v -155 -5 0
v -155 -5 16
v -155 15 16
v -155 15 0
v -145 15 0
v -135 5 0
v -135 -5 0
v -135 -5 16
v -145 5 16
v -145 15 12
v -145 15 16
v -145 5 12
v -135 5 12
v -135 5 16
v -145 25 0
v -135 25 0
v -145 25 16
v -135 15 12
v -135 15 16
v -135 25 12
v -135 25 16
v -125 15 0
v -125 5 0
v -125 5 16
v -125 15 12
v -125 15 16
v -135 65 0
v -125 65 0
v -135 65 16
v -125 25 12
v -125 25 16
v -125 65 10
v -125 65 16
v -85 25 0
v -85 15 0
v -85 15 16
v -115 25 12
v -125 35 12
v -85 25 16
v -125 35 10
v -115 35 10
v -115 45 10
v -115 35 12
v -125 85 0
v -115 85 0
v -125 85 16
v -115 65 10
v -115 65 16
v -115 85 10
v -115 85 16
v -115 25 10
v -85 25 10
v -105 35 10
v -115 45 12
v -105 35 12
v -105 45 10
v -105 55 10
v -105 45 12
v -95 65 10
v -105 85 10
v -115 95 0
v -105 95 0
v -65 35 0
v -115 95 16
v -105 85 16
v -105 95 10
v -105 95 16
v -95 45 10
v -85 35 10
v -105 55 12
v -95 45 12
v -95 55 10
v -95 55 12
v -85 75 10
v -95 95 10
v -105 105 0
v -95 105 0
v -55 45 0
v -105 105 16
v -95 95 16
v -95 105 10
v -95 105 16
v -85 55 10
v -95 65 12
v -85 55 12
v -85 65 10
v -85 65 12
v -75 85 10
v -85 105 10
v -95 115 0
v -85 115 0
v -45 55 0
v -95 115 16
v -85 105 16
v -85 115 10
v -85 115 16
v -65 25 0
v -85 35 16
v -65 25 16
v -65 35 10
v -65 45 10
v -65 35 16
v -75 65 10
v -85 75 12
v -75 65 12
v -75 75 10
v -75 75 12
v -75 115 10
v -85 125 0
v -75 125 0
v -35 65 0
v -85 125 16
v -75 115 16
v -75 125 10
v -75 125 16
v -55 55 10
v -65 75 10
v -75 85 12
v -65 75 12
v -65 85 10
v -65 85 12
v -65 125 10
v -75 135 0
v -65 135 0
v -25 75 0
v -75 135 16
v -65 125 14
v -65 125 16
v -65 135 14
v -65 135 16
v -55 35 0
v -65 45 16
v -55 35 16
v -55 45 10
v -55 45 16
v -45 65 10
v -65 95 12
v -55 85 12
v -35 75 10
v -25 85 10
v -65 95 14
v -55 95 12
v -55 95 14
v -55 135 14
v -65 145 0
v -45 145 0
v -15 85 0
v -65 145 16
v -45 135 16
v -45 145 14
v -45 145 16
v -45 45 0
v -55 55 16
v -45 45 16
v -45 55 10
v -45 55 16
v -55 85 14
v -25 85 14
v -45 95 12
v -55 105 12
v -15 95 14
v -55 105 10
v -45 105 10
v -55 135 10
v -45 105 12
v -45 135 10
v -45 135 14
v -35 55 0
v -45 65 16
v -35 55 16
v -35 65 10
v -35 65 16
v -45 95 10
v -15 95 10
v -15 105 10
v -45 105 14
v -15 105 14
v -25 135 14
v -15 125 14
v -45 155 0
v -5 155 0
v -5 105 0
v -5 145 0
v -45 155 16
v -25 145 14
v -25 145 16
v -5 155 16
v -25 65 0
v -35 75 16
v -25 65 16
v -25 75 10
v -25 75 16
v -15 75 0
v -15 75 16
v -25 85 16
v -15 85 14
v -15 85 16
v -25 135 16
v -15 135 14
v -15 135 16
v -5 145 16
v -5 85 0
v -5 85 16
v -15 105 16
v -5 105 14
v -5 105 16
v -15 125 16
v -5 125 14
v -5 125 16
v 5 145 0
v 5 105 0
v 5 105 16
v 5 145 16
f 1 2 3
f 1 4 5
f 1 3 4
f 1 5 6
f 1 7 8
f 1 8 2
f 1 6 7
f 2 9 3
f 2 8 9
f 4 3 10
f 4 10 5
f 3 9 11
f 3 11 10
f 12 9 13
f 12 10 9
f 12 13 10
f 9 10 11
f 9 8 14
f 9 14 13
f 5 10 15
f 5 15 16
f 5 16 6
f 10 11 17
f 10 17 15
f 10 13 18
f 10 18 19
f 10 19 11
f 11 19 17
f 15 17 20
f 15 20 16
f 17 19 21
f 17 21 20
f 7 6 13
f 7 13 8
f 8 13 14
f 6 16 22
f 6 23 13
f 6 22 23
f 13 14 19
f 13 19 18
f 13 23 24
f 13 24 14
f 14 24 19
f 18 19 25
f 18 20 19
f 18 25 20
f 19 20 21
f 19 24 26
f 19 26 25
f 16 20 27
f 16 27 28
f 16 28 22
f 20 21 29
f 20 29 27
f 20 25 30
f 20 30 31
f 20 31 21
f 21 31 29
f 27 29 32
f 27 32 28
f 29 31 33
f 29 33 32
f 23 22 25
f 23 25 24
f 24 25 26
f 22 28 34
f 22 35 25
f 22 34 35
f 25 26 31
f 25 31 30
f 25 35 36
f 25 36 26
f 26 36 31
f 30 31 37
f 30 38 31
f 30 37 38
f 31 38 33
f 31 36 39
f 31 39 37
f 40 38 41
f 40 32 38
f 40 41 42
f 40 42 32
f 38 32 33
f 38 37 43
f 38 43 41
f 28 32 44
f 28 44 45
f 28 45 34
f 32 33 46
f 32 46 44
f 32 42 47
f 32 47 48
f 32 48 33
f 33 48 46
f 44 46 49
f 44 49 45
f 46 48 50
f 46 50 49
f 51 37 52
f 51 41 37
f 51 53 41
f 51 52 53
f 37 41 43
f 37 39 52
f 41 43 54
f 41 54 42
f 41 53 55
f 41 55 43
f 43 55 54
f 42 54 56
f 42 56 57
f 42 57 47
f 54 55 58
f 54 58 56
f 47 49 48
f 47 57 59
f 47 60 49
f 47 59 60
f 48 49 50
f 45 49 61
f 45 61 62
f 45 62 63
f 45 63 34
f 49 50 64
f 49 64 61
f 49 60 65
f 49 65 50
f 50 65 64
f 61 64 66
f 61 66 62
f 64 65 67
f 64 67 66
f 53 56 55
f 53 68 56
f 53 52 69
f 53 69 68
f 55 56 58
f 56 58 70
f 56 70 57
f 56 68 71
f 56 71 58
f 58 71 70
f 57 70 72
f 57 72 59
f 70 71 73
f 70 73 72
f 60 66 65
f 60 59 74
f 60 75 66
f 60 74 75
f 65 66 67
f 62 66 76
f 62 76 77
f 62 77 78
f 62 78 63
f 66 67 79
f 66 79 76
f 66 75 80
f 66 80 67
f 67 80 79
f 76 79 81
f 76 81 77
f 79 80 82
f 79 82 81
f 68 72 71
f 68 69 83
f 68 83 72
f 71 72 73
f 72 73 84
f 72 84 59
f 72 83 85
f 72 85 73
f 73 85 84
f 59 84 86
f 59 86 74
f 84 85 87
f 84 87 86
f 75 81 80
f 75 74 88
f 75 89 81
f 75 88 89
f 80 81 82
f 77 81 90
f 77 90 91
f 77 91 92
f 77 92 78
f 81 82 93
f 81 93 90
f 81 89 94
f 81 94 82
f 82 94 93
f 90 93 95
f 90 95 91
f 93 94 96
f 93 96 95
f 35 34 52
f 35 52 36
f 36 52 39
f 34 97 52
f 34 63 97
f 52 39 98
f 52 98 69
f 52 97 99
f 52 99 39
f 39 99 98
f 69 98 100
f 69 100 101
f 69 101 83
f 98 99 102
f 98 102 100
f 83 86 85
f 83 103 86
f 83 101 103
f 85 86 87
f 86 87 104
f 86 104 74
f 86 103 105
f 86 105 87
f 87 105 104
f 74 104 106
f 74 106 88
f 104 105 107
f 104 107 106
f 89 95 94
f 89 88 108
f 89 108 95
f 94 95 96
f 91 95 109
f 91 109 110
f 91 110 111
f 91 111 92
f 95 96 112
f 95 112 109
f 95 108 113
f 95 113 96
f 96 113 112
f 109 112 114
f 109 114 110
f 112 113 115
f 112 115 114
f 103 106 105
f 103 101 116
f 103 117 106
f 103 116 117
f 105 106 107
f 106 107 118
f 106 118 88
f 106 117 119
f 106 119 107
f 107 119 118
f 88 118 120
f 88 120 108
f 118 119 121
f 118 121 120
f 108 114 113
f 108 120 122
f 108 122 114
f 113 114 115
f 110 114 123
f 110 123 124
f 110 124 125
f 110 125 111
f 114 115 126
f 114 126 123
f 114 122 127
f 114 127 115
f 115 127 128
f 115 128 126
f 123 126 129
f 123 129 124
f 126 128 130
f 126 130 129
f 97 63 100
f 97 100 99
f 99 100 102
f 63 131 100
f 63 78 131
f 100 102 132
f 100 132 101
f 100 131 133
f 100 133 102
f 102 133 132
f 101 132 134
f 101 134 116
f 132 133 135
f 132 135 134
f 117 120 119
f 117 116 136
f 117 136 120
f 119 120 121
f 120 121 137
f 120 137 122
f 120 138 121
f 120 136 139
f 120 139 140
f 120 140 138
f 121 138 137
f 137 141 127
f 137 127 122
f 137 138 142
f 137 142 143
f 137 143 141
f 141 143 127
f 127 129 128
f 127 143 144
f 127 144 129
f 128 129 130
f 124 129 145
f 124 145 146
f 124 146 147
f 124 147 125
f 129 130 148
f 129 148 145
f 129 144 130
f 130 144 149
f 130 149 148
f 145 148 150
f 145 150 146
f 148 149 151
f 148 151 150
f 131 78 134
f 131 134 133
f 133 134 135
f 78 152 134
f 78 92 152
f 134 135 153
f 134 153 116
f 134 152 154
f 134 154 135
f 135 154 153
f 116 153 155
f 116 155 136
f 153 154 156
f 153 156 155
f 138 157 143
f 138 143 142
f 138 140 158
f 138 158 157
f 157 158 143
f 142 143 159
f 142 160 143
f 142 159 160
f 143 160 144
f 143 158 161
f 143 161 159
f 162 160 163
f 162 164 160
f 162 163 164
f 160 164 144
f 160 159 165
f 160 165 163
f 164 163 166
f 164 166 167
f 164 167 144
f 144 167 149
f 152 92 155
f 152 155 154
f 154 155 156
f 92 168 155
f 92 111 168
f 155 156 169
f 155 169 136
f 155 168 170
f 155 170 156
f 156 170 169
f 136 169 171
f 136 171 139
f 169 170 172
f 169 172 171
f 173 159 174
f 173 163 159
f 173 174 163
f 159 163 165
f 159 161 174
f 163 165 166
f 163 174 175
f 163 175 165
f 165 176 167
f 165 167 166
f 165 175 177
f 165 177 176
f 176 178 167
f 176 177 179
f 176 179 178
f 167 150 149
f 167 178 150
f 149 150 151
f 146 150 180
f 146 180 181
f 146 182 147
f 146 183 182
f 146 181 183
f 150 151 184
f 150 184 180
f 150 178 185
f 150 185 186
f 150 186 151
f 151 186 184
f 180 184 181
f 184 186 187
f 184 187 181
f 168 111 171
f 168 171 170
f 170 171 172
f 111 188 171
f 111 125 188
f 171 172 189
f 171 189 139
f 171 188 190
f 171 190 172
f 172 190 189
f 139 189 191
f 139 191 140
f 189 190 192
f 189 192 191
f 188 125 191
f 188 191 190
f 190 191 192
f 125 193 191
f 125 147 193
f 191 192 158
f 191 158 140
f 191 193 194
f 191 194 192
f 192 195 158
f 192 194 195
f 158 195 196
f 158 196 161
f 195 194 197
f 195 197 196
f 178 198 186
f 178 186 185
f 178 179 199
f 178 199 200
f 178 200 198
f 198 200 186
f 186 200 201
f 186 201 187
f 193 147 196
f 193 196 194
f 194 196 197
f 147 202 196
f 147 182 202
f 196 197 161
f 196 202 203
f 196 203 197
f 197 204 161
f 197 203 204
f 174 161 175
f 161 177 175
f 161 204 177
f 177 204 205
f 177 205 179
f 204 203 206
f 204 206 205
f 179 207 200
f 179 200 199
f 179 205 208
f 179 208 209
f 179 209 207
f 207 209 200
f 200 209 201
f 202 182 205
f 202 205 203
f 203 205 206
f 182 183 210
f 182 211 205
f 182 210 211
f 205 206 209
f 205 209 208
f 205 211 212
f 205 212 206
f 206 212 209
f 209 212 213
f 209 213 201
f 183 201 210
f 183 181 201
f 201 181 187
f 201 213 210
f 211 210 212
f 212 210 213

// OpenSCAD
// file: pixel_canvas.scad
module pixel(x, y, pixel_color, pixel_height = 1.0) {
    color(pixel_color) {
	linear_extrude(height = pixel_height) {
	    translate([x, y]) {
		square(size = 1, center=true);
	    }
	}
    }
}

module pixel_canvas(canvas_size, pixel_count, pixels, color_palette, color_heights) {
    pixel_size = canvas_size / pixel_count;
    scale([pixel_size, pixel_size, 1.0]) {
	for (coord = pixels) {
	    x = coord[0];
	    y = coord[1];
	    color_index = coord[2];
	    pixel(x=x, y=y, pixel_color=color_palette[color_index], pixel_height=color_heights[color_index] * pixel_size);
	}
    }
}
// main file
use <pixel_canvas.scad>

COLOR_PALETTE = [
  "white",
  "yellow",
  "orange",
  "black",
];

COLOR_HEIGHTS = [
  1.0,
  1.2,
  1.4,
  1.6,
];

PIXELS = [
	  [-4, 15, 3], [-3, 15, 3], [-2, 15, 3], [-1, 15, 3],
	  [-6, 14, 3], [-5, 14, 3], [-4, 14, 2], [-3, 14, 2], [-2, 14, 3], [-1, 14, 3], [0, 14, 3],
	  [-7, 13, 3], [-6, 13, 2], [-5, 13, 0], [-4, 13, 2], [-3, 13, 2], [-2, 13, 2], [-1, 13, 3], [0, 13, 3],
	  [-8, 12, 3], [-7, 12, 0], [-6, 12, 2], [-5, 12, 0], [-4, 12, 2], [-3, 12, 2], [-2, 12, 2], [-1, 12, 2], [0, 12, 3],
	  [-9, 11, 3], [-8, 11, 0], [-7, 11, 0], [-6, 11, 2], [-5, 11, 0], [-4, 11, 2], [-3, 11, 2], [-2, 11, 2], [-1, 11, 2], [0, 11, 3],
	  [-10, 10, 3], [-9, 10, 0], [-8, 10, 0], [-7, 10, 0], [-6, 10, 2], [-5, 10, 1], [-4, 10, 0], [-3, 10, 0], [-2, 10, 0], [-1, 10, 3],
	  [-11, 9, 3], [-10, 9, 0], [-9, 9, 0], [-8, 9, 0], [-7, 9, 0], [-6, 9, 1], [-5, 9, 2], [-4, 9, 2], [-3, 9, 2], [-2, 9, 2], [-1, 9, 3],
	  [-12, 8, 3], [-11, 8, 0], [-10, 8, 0], [-9, 8, 0], [-8, 8, 0], [-7, 8, 1], [-6, 8, 0], [-5, 8, 0], [-4, 8, 0], [-3, 8, 0], [-2, 8, 3],
	  [-12, 7, 3], [-11, 7, 0], [-10, 7, 0], [-9, 7, 0], [-8, 7, 1], [-7, 7, 0], [-6, 7, 0], [-5, 7, 0], [-4, 7, 0], [-3, 7, 3],
	  [-13, 6, 3], [-12, 6, 0], [-11, 6, 0], [-10, 6, 0], [-9, 6, 1], [-8, 6, 0], [-7, 6, 0], [-6, 6, 0], [-5, 6, 0], [-4, 6, 3],
	  [-13, 5, 3], [-12, 5, 0], [-11, 5, 0], [-10, 5, 1], [-9, 5, 0], [-8, 5, 0], [-7, 5, 0], [-6, 5, 0], [-5, 5, 3],
	  [-13, 4, 3], [-12, 4, 0], [-11, 4, 1], [-10, 4, 0], [-9, 4, 0], [-8, 4, 0], [-7, 4, 0], [-6, 4, 3],
	  [-13, 3, 3], [-12, 3, 1], [-11, 3, 0], [-10, 3, 0], [-9, 3, 0], [-8, 3, 3], [-7, 3, 3],
	  [-14, 2, 3], [-13, 2, 1], [-12, 2, 3], [-11, 2, 3], [-10, 2, 3], [-9, 2, 3],
	  [-15, 1, 3], [-14, 1, 1], [-13, 1, 3],
	  [-15, 0, 3], [-14, 0, 3],
];

pixel_canvas(canvas_size=170, pixel_count=17, pixels=PIXELS, color_palette=COLOR_PALETTE, color_heights=COLOR_HEIGHTS);
